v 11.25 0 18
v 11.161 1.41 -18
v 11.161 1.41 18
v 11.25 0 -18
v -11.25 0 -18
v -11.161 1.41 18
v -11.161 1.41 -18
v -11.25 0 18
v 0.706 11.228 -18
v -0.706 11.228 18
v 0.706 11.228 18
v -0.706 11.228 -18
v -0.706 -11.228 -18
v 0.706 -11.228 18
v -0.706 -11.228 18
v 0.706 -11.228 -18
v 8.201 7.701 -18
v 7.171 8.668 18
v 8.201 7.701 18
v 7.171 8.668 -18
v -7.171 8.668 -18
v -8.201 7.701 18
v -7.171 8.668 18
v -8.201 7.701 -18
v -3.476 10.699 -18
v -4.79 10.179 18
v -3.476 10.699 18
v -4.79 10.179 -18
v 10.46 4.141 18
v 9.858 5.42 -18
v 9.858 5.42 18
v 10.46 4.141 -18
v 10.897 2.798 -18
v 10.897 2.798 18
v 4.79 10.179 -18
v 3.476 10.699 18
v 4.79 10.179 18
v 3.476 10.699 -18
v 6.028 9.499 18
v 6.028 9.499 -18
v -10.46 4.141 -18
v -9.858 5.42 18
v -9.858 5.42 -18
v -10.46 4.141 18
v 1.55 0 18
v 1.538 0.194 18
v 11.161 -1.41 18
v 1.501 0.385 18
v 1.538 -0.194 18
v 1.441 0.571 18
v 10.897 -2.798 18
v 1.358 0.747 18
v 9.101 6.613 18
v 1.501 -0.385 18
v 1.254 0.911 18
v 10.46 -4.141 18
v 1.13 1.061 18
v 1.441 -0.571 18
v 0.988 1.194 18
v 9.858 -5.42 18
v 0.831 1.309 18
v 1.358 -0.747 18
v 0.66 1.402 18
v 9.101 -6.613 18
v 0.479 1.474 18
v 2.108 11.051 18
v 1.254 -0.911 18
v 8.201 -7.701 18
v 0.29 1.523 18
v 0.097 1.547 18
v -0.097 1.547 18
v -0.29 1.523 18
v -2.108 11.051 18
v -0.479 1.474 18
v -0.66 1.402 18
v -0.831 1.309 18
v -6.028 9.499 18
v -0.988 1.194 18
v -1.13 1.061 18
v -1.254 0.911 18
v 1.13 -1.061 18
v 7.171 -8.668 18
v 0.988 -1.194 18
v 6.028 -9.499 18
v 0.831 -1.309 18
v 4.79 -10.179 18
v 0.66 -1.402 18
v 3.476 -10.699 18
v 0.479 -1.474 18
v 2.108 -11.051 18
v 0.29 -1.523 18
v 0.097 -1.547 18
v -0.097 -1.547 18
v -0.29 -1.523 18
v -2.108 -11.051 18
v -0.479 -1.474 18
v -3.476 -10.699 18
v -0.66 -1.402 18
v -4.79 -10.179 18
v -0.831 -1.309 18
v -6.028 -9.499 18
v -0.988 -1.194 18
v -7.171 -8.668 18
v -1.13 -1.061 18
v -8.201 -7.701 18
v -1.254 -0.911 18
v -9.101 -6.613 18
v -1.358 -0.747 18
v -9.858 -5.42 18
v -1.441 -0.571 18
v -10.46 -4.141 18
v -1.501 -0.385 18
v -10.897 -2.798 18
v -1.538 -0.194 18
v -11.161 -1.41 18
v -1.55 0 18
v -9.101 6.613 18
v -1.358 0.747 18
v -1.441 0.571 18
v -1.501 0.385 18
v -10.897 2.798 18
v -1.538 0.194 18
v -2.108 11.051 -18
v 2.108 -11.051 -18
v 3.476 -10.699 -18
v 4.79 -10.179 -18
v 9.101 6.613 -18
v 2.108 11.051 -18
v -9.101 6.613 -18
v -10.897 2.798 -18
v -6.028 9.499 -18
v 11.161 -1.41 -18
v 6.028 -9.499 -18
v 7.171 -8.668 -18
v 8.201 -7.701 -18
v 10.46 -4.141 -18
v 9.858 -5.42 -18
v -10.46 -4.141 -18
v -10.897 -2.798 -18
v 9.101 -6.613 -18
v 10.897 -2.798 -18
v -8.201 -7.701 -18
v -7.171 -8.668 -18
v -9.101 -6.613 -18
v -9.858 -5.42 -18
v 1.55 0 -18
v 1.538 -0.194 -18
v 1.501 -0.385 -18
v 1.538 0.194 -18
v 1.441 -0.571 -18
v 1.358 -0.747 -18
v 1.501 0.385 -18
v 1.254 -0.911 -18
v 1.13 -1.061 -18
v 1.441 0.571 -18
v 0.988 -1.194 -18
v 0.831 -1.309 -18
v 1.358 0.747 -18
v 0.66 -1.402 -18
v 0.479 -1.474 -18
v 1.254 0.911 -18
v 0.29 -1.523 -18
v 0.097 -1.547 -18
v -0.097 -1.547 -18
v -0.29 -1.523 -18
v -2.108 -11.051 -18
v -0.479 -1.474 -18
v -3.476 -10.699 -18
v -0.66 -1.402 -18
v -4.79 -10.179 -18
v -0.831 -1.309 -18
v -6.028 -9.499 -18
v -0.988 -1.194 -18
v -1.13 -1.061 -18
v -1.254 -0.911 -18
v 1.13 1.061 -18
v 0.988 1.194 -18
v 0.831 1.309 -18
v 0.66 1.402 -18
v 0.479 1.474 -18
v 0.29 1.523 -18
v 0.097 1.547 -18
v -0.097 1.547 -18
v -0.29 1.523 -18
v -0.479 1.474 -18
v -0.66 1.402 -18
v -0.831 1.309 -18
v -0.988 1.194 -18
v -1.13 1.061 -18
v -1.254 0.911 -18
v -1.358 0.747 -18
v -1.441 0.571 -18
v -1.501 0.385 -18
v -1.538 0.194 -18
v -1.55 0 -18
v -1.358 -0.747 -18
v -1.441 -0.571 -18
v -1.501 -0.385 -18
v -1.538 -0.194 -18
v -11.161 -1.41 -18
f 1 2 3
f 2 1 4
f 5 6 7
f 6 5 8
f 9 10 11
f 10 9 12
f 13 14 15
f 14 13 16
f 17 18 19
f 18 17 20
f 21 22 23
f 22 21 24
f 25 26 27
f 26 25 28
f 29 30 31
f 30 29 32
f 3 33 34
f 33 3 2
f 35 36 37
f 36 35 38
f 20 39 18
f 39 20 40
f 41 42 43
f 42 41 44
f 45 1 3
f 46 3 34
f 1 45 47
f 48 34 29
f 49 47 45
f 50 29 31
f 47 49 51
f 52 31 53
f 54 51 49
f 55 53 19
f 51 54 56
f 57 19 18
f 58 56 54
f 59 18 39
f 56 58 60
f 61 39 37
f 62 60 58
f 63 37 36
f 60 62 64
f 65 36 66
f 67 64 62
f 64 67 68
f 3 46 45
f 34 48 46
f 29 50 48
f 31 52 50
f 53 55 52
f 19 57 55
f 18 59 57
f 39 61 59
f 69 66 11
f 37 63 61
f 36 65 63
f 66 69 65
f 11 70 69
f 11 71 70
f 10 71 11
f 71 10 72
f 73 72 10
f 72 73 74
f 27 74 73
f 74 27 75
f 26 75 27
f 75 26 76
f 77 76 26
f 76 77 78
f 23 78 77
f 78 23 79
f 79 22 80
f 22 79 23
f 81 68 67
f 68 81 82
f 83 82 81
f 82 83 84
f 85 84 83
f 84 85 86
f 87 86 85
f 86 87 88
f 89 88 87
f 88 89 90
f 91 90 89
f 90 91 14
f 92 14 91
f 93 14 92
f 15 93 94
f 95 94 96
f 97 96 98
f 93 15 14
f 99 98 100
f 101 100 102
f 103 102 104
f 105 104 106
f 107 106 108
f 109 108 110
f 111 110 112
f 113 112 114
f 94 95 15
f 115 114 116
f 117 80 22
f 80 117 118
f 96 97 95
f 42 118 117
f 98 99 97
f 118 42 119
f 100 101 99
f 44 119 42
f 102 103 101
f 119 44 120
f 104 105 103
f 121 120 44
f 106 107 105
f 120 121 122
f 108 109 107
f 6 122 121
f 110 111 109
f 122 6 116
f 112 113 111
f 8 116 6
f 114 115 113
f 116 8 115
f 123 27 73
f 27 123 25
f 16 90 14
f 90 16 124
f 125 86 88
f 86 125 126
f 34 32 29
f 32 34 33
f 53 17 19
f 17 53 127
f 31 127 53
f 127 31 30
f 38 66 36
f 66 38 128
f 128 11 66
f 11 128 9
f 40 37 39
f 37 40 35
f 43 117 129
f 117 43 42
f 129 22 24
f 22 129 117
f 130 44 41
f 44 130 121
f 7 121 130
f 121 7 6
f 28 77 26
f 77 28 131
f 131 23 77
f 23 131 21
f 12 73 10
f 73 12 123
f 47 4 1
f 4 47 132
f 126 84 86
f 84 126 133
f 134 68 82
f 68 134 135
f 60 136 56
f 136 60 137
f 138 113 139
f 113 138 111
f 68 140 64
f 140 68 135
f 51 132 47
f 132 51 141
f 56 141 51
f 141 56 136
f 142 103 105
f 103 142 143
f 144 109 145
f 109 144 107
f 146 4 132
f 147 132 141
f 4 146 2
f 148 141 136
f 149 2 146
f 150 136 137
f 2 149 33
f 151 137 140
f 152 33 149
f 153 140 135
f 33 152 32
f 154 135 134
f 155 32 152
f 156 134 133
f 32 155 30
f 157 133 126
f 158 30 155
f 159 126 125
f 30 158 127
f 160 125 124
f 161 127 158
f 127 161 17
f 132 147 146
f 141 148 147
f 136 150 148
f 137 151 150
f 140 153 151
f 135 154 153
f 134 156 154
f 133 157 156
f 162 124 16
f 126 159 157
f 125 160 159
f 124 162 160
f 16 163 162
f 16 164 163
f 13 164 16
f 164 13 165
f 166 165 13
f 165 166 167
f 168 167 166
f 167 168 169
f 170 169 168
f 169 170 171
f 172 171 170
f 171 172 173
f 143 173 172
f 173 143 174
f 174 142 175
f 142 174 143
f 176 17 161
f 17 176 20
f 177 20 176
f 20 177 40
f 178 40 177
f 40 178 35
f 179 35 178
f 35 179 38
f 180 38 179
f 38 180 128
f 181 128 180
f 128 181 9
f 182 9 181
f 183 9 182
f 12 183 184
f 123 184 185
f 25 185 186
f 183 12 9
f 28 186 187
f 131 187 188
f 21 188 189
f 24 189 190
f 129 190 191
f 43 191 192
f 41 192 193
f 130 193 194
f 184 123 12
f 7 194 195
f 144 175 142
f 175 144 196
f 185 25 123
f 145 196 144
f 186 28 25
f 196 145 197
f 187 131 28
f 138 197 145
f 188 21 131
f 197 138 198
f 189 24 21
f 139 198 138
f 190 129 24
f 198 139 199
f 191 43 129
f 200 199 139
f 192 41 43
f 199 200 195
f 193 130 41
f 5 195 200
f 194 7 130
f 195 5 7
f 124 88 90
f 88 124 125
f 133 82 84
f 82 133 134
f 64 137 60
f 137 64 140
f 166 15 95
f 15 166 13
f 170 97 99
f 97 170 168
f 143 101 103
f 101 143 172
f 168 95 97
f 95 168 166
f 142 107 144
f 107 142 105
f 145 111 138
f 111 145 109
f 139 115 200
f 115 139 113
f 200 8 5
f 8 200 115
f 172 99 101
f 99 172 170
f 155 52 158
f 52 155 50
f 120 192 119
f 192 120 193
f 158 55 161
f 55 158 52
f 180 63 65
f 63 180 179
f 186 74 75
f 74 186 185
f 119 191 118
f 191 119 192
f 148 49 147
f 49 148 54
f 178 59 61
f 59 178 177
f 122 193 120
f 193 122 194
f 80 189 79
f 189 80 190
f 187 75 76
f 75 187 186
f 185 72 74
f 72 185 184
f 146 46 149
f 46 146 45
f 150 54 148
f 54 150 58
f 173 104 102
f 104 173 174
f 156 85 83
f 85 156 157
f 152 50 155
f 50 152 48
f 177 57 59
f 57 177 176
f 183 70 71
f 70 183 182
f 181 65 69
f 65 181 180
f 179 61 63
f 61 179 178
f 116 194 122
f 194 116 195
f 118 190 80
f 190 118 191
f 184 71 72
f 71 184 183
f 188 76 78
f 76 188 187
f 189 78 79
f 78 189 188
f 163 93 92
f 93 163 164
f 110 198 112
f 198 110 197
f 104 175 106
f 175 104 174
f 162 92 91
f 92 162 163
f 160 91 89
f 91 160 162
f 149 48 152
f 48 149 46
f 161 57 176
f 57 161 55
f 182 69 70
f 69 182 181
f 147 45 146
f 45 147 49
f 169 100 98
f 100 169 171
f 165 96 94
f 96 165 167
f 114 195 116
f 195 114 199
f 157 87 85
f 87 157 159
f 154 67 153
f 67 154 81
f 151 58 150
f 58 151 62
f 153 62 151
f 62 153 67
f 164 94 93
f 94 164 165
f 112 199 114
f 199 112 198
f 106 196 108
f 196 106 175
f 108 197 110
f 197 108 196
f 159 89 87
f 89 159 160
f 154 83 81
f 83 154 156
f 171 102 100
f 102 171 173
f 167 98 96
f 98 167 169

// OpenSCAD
$fn = 50;


difference() {
	union() {
		translate(v = [0, 0, -18.0000000000]) {
			cylinder(h = 36, r = 11.2500000000);
		}
	}
	union() {
		translate(v = [0, 0, -100.0000000000]) {
			cylinder(h = 200, r = 1.5500000000);
		}
	}
}
